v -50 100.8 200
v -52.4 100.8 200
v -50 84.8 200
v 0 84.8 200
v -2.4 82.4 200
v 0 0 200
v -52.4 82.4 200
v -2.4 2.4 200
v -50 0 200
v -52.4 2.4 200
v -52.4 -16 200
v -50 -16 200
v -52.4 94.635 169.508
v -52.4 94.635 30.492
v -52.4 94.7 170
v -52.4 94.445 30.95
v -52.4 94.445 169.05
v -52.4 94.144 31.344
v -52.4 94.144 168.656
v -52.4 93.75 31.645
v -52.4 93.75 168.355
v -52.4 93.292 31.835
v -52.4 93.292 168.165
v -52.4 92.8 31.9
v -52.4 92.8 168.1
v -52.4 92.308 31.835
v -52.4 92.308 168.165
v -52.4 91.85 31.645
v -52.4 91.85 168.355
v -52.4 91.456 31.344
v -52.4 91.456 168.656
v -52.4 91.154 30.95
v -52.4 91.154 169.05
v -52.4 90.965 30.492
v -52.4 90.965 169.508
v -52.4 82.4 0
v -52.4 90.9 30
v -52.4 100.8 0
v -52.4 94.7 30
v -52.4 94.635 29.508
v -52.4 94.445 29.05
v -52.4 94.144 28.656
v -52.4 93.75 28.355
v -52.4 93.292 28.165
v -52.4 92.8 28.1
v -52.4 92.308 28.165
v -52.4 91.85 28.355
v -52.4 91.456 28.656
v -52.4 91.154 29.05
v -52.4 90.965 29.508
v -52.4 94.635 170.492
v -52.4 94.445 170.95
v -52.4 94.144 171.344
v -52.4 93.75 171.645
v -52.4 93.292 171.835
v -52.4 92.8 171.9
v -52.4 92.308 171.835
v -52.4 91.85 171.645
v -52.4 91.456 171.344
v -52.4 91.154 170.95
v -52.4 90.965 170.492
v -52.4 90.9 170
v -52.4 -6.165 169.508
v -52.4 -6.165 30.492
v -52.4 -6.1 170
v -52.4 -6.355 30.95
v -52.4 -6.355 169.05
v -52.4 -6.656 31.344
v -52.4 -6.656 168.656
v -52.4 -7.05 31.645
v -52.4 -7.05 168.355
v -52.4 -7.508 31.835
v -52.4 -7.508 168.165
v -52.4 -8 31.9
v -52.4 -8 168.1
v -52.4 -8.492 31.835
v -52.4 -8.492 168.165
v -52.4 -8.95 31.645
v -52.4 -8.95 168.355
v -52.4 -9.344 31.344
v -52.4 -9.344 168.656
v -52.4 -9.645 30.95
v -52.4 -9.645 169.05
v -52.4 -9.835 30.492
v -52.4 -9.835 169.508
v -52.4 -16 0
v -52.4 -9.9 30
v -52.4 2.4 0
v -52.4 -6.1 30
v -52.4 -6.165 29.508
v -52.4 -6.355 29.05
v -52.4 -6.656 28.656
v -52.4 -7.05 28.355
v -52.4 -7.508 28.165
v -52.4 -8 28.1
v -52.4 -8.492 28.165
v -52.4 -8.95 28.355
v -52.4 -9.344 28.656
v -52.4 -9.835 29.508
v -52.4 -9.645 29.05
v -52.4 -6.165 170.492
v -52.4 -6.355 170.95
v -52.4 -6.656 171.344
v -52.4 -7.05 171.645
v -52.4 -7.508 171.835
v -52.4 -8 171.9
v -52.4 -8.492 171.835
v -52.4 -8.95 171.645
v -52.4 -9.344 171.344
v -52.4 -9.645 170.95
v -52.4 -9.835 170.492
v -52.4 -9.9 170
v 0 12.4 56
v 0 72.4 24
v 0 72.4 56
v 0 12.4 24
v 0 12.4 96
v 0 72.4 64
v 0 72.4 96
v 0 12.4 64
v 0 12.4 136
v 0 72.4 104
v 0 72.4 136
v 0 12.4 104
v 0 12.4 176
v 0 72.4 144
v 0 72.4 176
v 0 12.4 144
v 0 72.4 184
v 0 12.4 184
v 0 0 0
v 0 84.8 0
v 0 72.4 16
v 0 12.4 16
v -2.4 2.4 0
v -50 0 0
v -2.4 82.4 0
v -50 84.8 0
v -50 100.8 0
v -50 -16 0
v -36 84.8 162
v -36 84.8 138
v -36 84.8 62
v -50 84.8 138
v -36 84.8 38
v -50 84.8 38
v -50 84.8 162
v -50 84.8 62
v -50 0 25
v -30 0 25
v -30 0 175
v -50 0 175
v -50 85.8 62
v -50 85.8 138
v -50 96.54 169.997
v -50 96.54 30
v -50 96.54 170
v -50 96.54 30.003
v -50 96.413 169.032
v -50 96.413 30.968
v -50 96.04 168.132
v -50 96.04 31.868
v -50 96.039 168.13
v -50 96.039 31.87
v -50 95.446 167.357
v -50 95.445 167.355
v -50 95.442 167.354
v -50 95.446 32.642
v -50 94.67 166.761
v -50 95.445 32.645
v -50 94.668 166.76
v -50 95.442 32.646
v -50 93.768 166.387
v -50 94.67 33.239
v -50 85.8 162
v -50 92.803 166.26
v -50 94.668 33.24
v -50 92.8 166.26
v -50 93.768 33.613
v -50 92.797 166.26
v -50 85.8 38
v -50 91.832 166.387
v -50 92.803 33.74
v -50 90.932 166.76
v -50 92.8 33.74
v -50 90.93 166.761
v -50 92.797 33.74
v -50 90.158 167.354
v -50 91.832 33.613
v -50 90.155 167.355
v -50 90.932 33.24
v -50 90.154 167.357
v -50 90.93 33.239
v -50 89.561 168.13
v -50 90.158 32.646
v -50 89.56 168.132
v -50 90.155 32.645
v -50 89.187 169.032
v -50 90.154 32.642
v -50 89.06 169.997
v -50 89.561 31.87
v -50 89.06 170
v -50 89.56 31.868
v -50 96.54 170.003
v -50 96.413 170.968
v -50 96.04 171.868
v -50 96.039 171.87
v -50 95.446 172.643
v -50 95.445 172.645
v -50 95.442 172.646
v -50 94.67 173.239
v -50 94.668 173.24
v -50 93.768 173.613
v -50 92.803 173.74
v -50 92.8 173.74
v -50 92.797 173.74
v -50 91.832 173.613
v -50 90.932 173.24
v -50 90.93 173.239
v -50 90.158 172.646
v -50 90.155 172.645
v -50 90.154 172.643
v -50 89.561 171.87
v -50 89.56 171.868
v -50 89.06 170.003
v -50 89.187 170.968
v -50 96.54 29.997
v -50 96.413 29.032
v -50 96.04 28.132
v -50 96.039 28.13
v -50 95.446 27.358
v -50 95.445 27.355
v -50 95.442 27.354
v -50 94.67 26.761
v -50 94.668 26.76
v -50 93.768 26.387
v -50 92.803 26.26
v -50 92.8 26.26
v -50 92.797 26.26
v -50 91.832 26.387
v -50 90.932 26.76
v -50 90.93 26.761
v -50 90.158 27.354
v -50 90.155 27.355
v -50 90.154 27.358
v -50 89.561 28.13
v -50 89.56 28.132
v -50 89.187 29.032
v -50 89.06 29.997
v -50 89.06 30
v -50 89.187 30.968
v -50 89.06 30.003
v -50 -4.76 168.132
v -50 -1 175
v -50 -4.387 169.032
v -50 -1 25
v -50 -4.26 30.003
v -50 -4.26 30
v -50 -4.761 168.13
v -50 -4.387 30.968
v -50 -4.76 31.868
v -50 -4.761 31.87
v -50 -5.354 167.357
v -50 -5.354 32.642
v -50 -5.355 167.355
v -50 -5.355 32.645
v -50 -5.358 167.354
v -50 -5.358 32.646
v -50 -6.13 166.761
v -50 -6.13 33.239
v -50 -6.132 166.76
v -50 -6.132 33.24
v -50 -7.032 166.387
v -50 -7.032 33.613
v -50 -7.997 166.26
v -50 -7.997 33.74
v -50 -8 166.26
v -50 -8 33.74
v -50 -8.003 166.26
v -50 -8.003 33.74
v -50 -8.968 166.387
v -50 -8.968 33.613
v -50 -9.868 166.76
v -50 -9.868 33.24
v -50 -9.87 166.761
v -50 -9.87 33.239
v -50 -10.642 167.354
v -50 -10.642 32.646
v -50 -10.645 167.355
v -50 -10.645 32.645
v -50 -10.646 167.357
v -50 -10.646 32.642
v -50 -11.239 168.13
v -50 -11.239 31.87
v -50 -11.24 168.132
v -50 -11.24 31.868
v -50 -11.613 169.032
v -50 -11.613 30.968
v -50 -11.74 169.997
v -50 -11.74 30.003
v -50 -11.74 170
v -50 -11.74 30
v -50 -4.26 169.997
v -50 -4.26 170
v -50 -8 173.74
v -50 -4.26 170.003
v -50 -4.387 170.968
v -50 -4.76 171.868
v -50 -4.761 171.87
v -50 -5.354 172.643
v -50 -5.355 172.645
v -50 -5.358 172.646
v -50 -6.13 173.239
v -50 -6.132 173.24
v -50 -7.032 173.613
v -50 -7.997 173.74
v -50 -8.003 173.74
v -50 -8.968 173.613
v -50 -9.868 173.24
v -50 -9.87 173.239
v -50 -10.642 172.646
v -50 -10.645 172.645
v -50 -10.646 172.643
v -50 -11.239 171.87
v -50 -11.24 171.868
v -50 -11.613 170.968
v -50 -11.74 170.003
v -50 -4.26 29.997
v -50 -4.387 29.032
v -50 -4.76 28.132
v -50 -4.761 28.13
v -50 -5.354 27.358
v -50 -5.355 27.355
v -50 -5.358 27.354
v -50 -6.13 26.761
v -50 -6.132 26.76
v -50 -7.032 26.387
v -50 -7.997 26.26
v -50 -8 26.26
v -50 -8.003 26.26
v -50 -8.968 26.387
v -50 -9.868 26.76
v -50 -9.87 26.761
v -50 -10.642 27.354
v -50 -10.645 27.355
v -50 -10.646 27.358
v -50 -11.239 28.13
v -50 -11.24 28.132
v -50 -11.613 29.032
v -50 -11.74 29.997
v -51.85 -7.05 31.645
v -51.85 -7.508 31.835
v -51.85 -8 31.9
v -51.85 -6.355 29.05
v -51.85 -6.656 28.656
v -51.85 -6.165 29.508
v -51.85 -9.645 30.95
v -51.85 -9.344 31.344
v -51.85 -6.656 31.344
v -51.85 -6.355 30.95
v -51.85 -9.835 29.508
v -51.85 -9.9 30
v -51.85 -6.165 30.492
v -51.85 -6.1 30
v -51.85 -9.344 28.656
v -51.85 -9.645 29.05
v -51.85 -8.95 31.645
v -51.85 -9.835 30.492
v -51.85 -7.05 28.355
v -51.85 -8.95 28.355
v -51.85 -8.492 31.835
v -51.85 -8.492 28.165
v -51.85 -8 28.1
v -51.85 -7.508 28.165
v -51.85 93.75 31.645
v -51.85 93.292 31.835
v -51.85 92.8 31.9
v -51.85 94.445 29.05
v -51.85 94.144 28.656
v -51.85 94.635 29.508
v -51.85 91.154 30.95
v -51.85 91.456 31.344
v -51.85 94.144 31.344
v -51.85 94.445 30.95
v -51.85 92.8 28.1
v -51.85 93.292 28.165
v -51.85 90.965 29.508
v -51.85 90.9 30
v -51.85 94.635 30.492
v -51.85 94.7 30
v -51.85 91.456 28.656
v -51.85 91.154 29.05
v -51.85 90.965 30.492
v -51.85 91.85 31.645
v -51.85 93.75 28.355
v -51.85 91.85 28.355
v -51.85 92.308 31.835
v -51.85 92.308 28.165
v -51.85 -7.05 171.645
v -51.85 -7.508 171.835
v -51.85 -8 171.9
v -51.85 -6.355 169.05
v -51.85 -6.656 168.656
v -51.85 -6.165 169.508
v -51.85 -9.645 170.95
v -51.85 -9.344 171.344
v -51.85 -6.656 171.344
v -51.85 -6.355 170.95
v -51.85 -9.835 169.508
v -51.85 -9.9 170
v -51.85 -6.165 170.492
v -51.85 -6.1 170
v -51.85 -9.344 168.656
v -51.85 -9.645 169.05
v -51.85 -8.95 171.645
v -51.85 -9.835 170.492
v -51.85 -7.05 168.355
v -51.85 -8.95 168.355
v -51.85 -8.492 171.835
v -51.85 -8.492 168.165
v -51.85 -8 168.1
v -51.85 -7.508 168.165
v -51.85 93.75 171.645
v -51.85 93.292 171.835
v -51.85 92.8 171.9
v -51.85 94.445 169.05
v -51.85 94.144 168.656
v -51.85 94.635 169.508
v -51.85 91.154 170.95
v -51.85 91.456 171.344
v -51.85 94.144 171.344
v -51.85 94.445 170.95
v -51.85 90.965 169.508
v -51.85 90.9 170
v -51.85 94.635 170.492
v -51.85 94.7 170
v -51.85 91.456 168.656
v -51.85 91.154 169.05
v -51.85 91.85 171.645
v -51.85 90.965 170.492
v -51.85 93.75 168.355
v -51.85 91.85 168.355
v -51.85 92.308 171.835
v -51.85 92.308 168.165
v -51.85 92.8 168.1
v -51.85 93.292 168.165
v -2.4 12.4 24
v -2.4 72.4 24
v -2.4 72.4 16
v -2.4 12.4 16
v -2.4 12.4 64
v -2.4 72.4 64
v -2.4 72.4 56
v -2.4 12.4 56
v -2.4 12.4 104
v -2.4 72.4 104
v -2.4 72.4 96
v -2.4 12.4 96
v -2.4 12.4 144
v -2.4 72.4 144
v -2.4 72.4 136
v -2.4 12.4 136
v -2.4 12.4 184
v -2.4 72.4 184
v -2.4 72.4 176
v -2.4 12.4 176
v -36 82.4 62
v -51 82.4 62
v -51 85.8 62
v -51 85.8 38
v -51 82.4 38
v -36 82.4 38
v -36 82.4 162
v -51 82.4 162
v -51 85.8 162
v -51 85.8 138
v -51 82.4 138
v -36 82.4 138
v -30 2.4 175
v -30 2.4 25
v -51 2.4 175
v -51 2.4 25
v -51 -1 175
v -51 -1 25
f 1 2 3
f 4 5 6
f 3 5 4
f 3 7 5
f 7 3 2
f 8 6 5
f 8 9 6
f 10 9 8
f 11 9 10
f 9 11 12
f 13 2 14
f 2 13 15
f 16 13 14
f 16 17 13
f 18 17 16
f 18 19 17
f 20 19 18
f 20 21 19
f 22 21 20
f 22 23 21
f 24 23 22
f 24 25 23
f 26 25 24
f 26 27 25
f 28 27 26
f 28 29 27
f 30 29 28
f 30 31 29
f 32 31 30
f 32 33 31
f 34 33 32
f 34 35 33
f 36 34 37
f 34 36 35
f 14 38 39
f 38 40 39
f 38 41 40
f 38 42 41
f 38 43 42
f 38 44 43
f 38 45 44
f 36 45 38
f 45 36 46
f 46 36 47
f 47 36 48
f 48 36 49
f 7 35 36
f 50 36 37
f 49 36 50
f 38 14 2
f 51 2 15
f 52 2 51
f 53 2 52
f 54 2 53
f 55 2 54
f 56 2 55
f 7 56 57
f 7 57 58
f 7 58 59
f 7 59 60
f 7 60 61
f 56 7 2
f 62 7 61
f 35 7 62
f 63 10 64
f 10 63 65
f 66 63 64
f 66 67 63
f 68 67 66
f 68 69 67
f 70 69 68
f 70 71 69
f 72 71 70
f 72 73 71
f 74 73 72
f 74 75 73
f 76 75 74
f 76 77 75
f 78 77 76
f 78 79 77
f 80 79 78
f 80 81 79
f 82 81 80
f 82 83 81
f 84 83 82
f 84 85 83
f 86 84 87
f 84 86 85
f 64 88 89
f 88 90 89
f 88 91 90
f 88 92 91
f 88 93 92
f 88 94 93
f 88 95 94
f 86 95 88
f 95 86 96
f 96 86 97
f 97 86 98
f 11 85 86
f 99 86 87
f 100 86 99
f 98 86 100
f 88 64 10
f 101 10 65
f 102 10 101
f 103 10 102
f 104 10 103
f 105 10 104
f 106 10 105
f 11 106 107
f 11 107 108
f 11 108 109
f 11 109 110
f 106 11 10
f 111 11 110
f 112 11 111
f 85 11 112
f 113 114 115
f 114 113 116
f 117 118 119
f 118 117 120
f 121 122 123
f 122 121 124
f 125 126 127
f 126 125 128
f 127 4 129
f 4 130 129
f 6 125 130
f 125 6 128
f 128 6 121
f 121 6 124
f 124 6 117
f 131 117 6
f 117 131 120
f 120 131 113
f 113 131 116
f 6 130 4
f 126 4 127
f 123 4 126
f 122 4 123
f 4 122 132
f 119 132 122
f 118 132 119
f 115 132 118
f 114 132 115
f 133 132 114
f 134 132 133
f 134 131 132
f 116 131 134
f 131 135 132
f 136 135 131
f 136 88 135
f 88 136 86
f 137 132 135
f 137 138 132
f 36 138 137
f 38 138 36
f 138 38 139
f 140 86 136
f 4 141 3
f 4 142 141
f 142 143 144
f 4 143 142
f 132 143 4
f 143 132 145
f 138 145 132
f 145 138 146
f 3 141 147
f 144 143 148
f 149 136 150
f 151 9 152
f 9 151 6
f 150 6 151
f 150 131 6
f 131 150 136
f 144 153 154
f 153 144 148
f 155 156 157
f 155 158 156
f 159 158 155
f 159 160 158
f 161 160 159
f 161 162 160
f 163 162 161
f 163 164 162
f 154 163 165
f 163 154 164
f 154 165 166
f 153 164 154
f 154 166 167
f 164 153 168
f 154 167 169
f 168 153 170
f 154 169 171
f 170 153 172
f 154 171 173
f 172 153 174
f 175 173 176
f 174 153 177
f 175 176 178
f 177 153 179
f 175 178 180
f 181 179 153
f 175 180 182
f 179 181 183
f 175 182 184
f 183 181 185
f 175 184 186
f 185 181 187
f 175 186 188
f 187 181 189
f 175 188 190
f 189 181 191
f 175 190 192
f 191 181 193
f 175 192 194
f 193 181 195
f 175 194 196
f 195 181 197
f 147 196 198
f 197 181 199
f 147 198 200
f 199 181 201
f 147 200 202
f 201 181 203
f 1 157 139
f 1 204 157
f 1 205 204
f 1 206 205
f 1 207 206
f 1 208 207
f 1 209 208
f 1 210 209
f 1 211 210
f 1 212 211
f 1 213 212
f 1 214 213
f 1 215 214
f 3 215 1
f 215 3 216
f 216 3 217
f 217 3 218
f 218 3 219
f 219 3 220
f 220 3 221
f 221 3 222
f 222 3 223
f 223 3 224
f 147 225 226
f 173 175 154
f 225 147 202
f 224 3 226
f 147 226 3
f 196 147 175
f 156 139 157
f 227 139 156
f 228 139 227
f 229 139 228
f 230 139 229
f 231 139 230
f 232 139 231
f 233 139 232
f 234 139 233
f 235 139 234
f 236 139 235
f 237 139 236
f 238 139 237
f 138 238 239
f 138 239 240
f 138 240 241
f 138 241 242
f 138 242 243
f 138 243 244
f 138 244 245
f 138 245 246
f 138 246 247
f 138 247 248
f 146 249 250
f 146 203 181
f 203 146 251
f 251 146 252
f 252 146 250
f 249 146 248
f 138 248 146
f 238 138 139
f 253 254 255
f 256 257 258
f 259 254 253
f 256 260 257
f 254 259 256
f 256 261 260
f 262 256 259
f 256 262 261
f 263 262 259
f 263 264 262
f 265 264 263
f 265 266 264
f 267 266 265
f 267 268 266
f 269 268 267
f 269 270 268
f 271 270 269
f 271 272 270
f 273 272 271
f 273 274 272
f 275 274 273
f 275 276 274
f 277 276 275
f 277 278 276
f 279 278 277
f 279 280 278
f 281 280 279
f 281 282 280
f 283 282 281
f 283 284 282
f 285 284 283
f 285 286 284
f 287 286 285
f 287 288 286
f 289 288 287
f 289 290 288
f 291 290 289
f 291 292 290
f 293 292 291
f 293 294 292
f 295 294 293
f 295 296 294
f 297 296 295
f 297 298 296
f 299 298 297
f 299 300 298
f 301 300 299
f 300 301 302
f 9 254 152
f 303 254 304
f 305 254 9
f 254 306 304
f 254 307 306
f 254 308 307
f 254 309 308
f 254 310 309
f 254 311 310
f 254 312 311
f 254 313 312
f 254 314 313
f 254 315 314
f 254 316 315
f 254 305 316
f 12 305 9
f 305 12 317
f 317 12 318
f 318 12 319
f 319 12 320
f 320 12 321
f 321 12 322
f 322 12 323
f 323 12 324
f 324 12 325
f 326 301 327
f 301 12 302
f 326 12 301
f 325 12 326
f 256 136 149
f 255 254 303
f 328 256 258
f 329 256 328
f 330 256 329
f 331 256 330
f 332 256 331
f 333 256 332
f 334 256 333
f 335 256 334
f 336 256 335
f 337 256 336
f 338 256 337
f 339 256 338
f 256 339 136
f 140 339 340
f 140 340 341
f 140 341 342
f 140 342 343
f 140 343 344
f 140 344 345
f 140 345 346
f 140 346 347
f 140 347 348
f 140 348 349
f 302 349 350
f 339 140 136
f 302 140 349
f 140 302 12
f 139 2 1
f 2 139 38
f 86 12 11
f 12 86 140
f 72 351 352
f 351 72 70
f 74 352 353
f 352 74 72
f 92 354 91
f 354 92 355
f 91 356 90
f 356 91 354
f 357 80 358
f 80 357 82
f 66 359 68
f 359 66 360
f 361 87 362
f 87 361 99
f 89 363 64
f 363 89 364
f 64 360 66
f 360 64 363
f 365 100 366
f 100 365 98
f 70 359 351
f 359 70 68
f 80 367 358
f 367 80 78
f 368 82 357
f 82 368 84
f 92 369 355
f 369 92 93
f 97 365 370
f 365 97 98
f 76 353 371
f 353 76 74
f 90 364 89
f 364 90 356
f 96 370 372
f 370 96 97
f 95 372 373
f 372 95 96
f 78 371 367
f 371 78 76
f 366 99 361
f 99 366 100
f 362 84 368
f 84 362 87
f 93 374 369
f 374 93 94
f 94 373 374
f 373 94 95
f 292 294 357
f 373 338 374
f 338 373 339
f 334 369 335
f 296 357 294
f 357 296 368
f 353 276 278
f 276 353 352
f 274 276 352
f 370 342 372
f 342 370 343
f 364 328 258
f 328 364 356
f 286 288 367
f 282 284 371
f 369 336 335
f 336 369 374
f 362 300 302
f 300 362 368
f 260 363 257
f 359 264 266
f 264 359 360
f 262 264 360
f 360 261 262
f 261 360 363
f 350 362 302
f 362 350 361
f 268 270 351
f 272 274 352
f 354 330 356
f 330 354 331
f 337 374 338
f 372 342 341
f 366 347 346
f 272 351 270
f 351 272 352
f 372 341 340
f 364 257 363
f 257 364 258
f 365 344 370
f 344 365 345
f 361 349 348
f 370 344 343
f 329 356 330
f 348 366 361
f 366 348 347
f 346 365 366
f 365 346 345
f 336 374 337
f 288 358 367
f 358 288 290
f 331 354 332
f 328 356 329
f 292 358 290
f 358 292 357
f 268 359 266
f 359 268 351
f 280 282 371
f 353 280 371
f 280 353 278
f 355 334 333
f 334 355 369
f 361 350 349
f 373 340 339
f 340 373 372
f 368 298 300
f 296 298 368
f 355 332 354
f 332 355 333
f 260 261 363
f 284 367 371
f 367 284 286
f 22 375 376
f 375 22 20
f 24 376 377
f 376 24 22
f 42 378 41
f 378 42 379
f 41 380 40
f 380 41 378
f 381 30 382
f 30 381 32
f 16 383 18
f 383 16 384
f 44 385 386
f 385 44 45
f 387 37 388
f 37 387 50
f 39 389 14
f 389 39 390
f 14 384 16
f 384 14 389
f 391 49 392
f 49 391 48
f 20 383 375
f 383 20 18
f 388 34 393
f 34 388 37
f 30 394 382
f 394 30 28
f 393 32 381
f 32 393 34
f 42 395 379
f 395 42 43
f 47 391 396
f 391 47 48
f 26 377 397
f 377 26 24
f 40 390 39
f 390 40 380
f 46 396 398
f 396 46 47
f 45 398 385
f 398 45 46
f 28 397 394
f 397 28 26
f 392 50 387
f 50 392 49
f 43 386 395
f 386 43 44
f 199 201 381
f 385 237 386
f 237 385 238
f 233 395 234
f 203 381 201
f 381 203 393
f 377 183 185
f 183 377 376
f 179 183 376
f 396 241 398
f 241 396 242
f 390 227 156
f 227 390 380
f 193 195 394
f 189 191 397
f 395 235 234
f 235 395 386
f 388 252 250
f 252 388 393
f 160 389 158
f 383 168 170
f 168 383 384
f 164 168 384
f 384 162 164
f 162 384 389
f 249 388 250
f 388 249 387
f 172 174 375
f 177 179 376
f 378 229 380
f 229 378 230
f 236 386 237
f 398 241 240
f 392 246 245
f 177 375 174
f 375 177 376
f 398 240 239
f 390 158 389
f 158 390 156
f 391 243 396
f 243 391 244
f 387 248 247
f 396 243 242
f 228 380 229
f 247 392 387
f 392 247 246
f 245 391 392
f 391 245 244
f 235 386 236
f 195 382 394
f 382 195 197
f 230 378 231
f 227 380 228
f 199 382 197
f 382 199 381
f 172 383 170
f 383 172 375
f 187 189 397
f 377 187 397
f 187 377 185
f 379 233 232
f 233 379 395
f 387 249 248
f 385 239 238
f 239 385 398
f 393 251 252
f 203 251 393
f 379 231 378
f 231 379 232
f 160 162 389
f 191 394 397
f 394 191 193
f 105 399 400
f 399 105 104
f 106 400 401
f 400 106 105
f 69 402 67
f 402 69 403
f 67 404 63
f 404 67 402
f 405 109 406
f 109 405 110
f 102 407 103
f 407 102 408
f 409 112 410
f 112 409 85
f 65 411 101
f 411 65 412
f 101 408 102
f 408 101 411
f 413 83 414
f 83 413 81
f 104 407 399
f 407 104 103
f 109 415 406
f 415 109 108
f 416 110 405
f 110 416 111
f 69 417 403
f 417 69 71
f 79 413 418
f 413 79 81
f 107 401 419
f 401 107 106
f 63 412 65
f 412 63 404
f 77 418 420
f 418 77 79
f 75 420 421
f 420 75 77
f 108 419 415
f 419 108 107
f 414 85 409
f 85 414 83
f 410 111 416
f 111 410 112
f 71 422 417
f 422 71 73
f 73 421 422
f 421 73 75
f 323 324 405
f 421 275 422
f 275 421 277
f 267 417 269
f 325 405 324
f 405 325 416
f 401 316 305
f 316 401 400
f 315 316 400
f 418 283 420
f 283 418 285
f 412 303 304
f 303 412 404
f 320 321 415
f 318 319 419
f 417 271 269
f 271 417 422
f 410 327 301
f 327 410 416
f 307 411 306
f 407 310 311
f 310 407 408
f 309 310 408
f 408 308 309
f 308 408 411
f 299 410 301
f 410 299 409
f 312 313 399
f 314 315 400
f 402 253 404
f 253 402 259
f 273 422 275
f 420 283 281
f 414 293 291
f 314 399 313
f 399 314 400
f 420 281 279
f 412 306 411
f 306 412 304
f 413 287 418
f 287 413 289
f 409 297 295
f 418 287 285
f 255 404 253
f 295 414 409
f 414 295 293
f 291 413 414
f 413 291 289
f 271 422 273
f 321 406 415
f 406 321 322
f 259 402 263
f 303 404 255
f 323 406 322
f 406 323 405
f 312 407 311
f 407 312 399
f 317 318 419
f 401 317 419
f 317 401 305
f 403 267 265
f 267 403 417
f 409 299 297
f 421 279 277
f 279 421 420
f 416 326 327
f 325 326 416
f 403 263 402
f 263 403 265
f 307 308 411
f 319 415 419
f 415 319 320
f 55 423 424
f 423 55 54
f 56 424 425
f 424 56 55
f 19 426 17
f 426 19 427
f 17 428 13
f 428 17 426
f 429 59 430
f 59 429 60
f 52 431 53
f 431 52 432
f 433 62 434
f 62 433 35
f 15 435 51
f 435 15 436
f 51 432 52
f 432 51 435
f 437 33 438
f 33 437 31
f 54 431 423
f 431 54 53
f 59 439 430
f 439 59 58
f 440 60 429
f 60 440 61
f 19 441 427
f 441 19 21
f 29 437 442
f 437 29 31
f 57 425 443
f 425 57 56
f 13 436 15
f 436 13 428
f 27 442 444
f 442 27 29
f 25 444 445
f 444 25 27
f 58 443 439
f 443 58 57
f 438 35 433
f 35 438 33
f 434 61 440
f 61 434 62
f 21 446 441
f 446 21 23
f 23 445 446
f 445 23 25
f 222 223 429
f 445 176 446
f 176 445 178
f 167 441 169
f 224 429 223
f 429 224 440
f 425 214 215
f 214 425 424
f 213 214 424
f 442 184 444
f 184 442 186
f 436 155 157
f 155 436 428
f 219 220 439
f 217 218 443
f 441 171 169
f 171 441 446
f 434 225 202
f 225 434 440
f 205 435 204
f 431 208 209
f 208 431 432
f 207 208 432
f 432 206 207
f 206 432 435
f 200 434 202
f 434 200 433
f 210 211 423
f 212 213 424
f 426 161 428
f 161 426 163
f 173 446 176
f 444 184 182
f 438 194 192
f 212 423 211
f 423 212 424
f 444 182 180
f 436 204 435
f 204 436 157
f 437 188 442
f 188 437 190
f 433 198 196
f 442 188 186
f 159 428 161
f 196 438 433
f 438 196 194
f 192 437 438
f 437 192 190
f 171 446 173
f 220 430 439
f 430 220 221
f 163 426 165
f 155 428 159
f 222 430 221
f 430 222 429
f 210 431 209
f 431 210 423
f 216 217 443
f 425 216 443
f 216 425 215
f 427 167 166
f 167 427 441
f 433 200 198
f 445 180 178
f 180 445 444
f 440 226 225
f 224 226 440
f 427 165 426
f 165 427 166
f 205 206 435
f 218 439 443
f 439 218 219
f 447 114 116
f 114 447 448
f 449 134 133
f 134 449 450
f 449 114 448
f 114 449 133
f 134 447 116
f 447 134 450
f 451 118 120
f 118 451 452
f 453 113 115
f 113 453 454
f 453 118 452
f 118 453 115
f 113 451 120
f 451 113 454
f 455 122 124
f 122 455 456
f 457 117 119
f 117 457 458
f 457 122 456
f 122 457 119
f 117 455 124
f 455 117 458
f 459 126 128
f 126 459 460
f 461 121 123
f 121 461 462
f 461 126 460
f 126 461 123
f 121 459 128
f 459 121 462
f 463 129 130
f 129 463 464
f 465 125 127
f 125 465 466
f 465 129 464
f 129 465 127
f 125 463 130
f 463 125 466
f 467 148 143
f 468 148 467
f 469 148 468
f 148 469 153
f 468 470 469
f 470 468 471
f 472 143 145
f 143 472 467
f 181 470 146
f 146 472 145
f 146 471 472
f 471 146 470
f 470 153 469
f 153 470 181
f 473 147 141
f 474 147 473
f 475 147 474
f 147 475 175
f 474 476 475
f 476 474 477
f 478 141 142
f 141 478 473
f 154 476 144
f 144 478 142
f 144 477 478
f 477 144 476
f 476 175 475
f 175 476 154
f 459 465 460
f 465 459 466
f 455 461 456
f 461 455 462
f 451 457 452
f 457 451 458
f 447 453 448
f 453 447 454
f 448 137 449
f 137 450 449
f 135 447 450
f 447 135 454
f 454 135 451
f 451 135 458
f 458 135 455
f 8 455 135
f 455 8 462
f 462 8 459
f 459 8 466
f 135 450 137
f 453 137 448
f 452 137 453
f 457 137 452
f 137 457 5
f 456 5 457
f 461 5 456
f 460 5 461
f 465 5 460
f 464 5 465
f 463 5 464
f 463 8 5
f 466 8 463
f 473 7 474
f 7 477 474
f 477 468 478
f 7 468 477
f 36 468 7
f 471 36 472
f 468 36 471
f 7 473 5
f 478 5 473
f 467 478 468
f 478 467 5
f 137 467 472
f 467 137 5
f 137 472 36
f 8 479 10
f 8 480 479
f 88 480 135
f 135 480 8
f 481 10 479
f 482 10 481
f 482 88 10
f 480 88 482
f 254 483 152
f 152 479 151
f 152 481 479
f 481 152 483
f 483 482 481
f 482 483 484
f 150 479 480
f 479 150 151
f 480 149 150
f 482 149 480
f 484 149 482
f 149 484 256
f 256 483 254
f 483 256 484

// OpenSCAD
// Under-desk cable tray, a 200 mm segment. The rim screws to the underside of the top and
// the trough hangs below it, open side against the desk; bricks and slack slide in from the
// ends. Chain segments end to end. Drain slots in the floor. Four #6 x 5/8 in flat heads
// per segment, countersunk on the face that points at the floor. The wall-side wall (y = 0)
// has a long entry slot under the rim for leads coming from the outlets; the front wall has
// two notches for leads going out to the devices, so nothing has to be threaded in from the ends.
// The file is in PRINT orientation: standing on one end (200 mm tall), no overhangs, no
// supports. PETG or ABS.

seg  = 200;   // length
w    = 80;    // inside width
h    = 50;    // inside depth
wall = 2.4;
tab  = 16;
hole = 3.8;
csk  = 7.5;

module tray() {   // use orientation: floor at z = 0, rim and tabs at z = h .. h + wall, against the desk
    difference() {
        union() {
            cube([seg, w + 2 * wall, h + wall]);
            translate([0, -tab, h]) cube([seg, w + 2 * wall + 2 * tab, wall]);    // tabs at the rim
        }
        translate([-1, wall, wall]) cube([seg + 2, w, h + 1]);                     // the trough, open at the rim
        for (x = [30, seg - 30], y = [-tab / 2, w + 2 * wall + tab / 2]) translate([x, y, h - 1]) {
            cylinder(d = hole, h = wall + 2, $fn = 24);
            translate([0, 0, 1 - 0.01]) cylinder(d1 = csk, d2 = hole, h = (csk - hole) / 2 + 0.01, $fn = 24);   // countersink on the tab's lower face
        }
        for (x = [20 : 40 : seg - 20]) translate([x - 4, wall + 10, -1]) cube([8, w - 20, wall + 2]);   // drain slots
        translate([25, -1, h - 20]) cube([seg - 50, wall + 2, 21]);                                           // entry slot along the wall-side wall, 20 mm tall under the rim
        for (x = [seg / 4, 3 * seg / 4]) translate([x - 12, w + wall - 1, h - 14]) cube([24, wall + 2, 15]);   // two exit notches in the front wall
    }
}
rotate([0, -90, 0]) tray();   // standing on one end for printing
